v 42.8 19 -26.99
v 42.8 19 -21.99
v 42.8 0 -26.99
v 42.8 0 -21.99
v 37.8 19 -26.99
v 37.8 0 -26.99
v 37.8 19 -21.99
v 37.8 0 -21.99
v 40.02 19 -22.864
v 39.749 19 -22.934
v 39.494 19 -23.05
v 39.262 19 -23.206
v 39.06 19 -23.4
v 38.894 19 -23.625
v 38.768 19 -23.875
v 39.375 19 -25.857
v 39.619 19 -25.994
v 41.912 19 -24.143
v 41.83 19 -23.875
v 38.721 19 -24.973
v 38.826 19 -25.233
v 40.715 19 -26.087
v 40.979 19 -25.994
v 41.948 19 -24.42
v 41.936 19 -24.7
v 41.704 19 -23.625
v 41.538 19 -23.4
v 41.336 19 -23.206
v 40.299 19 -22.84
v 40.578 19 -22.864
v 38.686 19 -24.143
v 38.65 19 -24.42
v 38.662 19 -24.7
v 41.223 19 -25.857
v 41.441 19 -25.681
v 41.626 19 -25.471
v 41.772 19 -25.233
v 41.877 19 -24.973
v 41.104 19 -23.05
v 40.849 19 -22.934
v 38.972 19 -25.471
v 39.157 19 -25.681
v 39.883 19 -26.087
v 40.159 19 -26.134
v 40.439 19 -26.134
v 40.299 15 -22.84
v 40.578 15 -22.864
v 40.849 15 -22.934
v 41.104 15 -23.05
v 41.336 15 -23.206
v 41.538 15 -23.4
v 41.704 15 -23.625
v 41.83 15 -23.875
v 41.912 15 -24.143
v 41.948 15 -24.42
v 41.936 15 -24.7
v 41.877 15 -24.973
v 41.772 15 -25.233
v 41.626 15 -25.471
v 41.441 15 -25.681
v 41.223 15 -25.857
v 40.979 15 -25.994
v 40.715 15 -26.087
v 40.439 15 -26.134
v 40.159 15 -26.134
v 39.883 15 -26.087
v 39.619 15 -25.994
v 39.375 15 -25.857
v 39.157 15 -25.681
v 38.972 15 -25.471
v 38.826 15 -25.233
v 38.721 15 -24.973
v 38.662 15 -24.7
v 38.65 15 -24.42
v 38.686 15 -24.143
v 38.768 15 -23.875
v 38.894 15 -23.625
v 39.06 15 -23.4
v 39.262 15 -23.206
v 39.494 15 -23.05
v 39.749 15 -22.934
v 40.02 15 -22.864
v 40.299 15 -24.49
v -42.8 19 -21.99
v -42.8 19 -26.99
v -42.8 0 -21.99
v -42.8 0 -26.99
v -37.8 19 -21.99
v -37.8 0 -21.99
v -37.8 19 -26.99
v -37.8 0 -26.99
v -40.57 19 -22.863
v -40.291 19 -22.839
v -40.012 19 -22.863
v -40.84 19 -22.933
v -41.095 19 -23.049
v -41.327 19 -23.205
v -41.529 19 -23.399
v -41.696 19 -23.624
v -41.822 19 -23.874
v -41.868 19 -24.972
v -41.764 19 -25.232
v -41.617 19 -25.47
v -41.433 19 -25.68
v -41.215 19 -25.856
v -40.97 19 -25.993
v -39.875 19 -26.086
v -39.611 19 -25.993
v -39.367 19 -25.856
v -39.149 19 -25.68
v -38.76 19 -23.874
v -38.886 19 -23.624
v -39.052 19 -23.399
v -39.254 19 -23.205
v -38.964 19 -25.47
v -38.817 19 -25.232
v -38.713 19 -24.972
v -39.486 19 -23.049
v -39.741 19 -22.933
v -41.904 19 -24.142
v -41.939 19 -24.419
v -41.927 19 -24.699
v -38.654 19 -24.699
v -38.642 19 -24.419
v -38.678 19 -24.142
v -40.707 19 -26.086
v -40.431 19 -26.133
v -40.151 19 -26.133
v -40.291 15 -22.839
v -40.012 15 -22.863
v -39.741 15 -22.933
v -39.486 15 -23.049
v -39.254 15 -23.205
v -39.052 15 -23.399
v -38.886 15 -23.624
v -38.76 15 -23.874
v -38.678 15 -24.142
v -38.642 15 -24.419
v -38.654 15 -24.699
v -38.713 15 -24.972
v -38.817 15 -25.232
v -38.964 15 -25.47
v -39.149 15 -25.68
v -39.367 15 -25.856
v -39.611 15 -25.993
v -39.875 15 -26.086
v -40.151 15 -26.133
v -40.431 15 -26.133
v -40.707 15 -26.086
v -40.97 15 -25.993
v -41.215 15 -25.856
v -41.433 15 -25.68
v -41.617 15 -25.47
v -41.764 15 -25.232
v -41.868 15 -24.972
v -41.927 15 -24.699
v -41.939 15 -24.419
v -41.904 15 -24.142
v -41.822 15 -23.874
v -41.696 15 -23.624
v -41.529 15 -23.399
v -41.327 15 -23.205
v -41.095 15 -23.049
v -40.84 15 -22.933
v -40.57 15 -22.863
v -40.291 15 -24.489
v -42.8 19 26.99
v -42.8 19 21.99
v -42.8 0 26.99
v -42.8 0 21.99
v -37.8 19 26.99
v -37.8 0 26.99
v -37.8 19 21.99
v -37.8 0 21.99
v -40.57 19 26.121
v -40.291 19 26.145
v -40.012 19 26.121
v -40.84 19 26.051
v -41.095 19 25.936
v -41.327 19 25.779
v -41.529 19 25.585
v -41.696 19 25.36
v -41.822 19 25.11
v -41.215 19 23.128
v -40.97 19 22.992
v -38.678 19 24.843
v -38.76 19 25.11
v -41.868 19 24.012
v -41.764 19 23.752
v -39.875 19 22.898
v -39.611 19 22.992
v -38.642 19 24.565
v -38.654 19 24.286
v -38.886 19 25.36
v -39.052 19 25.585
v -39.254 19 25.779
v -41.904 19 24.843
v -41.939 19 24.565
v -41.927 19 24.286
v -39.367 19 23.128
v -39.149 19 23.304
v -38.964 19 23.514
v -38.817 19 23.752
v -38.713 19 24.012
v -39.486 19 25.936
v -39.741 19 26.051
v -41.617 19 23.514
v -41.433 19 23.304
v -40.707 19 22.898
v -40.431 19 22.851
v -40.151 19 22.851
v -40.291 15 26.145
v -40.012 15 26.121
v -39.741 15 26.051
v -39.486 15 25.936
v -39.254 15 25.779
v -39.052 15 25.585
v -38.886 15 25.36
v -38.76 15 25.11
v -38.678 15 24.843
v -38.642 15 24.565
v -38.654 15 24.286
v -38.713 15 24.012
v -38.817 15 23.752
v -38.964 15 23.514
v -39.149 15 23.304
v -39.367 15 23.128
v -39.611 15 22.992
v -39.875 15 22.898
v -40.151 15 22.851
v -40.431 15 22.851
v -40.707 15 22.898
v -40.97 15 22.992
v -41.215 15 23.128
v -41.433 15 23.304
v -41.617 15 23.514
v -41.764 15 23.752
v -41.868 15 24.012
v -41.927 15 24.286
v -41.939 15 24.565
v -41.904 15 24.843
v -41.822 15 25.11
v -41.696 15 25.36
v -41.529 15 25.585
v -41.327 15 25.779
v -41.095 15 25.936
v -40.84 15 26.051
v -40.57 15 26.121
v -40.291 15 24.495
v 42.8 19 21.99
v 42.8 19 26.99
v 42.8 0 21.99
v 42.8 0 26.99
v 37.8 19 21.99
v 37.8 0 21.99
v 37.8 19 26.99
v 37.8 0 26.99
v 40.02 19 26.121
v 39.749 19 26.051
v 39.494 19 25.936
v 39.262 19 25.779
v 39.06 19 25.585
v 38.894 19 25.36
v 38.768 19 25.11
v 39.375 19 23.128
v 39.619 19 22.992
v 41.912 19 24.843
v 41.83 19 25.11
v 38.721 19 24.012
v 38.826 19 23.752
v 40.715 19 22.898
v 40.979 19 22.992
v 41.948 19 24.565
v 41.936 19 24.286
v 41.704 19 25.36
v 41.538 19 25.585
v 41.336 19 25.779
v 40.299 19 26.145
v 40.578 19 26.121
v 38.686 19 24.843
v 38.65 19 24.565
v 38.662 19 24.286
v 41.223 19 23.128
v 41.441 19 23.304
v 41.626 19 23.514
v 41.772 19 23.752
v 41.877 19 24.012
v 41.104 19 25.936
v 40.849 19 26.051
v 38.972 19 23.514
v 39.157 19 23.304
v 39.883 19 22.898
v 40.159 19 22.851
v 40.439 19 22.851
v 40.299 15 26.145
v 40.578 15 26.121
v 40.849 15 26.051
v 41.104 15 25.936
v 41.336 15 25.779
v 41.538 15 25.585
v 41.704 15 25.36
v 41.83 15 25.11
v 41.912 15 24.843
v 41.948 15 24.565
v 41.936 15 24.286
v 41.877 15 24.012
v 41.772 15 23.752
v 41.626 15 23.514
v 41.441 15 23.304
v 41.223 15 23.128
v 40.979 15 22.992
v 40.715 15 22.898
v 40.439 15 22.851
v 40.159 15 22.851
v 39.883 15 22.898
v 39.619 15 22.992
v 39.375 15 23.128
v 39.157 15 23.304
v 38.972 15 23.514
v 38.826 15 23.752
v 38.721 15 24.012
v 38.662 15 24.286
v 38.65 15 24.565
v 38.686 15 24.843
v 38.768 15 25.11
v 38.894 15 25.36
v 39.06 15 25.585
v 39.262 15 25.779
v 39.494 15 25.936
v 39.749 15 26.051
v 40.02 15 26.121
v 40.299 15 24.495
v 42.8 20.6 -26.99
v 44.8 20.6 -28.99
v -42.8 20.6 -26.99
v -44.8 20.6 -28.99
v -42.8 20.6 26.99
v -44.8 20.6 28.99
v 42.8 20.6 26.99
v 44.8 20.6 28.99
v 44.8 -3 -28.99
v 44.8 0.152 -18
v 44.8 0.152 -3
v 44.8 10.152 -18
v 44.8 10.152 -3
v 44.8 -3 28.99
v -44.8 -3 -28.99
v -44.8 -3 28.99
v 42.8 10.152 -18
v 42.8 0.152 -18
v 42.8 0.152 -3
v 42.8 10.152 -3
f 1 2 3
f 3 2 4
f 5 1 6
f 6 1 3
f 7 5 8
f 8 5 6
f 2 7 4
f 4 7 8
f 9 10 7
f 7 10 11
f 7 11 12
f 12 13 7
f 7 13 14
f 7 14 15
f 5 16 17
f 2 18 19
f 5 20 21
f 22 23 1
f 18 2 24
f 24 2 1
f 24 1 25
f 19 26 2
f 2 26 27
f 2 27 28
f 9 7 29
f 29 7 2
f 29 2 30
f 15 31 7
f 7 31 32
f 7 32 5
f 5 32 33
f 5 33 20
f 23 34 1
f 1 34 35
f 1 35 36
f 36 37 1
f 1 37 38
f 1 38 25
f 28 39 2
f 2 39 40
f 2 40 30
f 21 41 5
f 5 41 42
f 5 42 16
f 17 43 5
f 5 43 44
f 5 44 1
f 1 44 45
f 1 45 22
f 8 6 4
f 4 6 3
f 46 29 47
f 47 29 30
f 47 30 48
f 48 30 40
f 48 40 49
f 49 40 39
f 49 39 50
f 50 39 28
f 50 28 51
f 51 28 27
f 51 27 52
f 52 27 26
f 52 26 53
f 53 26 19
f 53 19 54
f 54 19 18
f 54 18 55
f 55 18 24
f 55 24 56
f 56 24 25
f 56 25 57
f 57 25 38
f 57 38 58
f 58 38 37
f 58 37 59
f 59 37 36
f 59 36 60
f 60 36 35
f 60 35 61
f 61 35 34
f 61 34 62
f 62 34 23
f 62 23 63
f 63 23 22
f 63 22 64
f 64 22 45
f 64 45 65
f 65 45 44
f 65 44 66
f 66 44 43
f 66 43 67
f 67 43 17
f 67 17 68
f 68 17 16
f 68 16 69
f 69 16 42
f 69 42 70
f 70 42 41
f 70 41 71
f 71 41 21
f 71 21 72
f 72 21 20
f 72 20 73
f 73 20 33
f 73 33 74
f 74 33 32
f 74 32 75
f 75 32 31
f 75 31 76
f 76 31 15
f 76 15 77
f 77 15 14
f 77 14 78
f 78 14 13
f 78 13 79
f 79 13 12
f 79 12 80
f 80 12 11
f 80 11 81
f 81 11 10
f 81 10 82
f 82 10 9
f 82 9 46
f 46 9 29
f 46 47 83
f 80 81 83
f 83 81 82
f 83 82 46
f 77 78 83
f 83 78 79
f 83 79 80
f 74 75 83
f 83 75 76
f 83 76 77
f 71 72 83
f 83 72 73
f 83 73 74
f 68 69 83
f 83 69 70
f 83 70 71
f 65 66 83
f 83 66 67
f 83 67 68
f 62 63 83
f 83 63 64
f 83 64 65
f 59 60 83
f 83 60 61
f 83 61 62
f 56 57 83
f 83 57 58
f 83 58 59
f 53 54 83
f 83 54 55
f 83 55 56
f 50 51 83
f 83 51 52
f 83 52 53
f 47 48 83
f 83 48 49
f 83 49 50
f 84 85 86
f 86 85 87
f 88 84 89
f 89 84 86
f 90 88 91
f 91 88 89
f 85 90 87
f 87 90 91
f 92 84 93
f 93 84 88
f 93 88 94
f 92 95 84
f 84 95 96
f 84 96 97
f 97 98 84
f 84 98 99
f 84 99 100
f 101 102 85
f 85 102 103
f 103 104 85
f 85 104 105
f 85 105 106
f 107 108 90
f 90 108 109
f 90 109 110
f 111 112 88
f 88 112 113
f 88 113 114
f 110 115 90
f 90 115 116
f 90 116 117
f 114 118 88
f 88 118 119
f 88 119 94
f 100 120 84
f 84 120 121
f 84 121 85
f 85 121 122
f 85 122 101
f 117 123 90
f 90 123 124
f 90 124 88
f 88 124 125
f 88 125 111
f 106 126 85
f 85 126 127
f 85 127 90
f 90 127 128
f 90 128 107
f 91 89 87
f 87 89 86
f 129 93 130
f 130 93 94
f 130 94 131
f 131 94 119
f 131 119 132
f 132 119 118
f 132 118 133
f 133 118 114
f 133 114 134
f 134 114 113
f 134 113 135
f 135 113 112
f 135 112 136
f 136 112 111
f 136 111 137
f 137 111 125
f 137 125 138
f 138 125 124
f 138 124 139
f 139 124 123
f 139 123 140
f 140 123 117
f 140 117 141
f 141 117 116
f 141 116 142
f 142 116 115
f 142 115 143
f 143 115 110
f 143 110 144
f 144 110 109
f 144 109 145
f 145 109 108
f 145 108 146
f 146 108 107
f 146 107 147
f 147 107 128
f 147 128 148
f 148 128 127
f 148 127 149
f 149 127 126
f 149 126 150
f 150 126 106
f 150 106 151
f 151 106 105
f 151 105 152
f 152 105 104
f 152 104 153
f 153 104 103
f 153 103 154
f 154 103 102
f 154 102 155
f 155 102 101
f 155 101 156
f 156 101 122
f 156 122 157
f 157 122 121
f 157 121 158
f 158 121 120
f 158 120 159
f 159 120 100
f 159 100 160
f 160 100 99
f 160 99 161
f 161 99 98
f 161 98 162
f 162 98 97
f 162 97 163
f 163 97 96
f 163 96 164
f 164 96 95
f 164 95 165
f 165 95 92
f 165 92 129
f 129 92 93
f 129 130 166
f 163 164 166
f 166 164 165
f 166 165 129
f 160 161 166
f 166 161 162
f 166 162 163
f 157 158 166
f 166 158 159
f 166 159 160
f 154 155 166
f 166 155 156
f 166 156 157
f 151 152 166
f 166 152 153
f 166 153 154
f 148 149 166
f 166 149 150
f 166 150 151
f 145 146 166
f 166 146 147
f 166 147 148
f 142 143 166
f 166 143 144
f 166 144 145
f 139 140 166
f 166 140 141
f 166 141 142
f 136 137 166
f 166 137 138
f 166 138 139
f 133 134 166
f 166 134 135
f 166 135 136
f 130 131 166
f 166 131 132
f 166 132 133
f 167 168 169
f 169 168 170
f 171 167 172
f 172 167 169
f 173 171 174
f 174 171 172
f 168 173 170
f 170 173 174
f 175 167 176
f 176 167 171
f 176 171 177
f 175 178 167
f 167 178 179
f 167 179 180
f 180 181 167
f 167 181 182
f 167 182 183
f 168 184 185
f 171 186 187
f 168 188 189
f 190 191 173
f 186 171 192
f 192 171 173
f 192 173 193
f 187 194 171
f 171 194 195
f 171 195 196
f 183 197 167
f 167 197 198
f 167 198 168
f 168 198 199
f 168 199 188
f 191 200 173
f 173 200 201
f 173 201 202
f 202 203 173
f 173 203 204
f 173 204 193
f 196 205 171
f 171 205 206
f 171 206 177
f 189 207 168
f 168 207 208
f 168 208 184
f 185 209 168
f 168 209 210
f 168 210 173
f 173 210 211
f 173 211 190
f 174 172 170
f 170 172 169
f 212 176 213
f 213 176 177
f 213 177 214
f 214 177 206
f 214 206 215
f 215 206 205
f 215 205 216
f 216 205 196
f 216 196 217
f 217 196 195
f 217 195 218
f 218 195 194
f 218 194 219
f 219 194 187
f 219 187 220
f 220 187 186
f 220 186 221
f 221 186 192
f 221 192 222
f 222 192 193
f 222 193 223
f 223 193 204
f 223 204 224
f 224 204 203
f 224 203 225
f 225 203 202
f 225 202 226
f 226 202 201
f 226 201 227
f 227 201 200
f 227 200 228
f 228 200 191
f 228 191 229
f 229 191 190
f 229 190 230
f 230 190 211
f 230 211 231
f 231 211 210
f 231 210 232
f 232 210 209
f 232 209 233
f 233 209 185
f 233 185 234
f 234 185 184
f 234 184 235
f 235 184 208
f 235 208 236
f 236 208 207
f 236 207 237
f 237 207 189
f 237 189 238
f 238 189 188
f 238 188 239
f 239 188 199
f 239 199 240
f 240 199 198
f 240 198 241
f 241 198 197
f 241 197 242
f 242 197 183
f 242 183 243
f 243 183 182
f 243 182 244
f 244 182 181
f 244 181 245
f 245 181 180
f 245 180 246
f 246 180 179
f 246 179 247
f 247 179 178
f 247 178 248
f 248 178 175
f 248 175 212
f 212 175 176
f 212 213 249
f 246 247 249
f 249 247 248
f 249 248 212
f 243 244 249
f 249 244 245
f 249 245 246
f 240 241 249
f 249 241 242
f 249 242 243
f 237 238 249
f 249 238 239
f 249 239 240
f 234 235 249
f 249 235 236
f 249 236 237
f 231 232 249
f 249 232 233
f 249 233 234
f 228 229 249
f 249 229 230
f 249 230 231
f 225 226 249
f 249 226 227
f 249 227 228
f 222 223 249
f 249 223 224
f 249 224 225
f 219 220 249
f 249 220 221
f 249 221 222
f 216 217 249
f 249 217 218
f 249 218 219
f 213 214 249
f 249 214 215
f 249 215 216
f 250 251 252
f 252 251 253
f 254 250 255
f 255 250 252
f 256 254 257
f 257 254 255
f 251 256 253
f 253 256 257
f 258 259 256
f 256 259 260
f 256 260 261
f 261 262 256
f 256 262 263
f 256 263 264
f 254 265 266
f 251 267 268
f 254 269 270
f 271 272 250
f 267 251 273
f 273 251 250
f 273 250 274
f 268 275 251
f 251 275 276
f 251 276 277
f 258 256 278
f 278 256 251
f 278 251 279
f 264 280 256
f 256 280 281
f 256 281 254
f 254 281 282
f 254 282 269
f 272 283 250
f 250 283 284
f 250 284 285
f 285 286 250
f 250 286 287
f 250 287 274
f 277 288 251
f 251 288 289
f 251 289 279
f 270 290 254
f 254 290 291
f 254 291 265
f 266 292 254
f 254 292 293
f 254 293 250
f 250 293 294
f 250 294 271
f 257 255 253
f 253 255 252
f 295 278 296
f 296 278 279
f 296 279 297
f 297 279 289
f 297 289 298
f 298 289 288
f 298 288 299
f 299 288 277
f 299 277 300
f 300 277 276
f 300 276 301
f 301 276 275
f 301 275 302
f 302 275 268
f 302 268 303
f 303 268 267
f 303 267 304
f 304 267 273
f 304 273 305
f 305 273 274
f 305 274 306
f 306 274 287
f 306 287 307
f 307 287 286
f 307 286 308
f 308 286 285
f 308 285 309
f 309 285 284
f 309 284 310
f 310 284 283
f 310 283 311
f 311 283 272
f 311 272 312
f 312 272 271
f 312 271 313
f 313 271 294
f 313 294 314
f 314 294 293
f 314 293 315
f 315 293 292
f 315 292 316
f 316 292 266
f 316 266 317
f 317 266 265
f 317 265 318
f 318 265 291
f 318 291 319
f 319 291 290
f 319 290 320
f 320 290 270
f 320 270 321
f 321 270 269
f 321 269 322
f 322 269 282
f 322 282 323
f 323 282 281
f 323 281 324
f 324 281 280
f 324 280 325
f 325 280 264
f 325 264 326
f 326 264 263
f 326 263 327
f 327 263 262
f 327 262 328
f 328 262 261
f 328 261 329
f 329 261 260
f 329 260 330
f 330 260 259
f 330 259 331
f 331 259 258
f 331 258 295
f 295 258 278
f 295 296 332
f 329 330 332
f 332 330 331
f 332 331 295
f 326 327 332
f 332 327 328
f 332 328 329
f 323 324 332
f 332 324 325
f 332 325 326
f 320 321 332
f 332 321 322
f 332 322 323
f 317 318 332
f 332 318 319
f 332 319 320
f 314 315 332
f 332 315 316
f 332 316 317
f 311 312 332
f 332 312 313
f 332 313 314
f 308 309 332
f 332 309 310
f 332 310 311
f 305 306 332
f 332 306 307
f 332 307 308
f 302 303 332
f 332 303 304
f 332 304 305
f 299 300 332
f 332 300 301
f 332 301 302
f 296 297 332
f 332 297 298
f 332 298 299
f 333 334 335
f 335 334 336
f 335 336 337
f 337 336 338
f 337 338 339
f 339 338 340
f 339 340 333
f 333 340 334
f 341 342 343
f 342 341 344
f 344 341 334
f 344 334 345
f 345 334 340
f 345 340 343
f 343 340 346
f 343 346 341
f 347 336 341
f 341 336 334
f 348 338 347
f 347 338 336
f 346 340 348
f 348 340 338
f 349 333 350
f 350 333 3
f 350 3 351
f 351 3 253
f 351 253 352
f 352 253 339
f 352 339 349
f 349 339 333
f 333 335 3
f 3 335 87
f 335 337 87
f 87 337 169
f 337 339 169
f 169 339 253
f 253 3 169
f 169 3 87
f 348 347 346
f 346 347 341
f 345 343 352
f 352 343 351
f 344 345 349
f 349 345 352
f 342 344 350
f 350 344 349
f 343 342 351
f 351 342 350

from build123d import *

# Parameters (mm, degrees)
SKETCH1_W             = 89.6
SKETCH1_H             = 57.98
SKETCH1_W_2           = 85.6
SKETCH1_H_2           = 53.98
BOSS_EXTRUDE1_DEPTH   = 20.6
SKETCH2_W             = 89.6
SKETCH2_H             = 57.98
BOSS_EXTRUDE2_DEPTH   = 3
SKETCH3_W             = 5
SKETCH3_H             = 5
BOSS_EXTRUDE3_DEPTH   = 19
BOSS_EXTRUDE3_2_DEPTH = 19
BOSS_EXTRUDE3_3_DEPTH = 19
BOSS_EXTRUDE3_4_DEPTH = 19
SKETCH4_R             = 1.65
CUT_EXTRUDE2_DEPTH    = 4
SKETCH5_W             = 15
SKETCH5_H             = 10
CUT_EXTRUDE3_DEPTH    = 4


with BuildPart() as part:
    # Sketch1 → Boss-Extrude1 (new body)
    with BuildSketch(Plane(origin=(0, 0, 0), x_dir=(1, 0, 0), z_dir=(0, 1, 0))):
        Rectangle(SKETCH1_W, SKETCH1_H)
        Rectangle(SKETCH1_W_2, SKETCH1_H_2, mode=Mode.SUBTRACT)
    extrude(amount=BOSS_EXTRUDE1_DEPTH)

    # Sketch2 → Boss-Extrude2 (add)
    with BuildSketch(Plane.XZ):
        Rectangle(SKETCH2_W, SKETCH2_H)
    extrude(amount=BOSS_EXTRUDE2_DEPTH)

    # Sketch5 → Cut-Extrude3 (cut)
    with BuildSketch(Plane(origin=(44.8, 0, 0), x_dir=(0, 0, -1), z_dir=(1, 0, 0))):
        with Locations((10.49990384, 5.151883102)):
            Rectangle(SKETCH5_W, SKETCH5_H)
    extrude(amount=-CUT_EXTRUDE3_DEPTH, mode=Mode.SUBTRACT)


with BuildPart() as body_2:
    # Sketch3 → Boss-Extrude3 (new body)
    with BuildSketch(Plane(origin=(0, 0, 0), x_dir=(1, 0, 0), z_dir=(0, 1, 0))):
        with Locations((40.3, 24.49)):
            Rectangle(SKETCH3_W, SKETCH3_H)
    extrude(amount=BOSS_EXTRUDE3_DEPTH)


with BuildPart() as body_3:
    # Sketch3 → Boss-Extrude3 2 (new body)
    with BuildSketch(Plane(origin=(0, 0, 0), x_dir=(1, 0, 0), z_dir=(0, 1, 0))):
        with Locations((-40.3, 24.49)):
            Rectangle(SKETCH3_W, SKETCH3_H)
    extrude(amount=BOSS_EXTRUDE3_2_DEPTH)


with BuildPart() as body_4:
    # Sketch3 → Boss-Extrude3 3 (new body)
    with BuildSketch(Plane(origin=(0, 0, 0), x_dir=(1, 0, 0), z_dir=(0, 1, 0))):
        with Locations((-40.3, -24.49)):
            Rectangle(SKETCH3_W, SKETCH3_H)
    extrude(amount=BOSS_EXTRUDE3_3_DEPTH)


with BuildPart() as body_5:
    # Sketch3 → Boss-Extrude3 4 (new body)
    with BuildSketch(Plane(origin=(0, 0, 0), x_dir=(1, 0, 0), z_dir=(0, 1, 0))):
        with Locations((40.3, -24.49)):
            Rectangle(SKETCH3_W, SKETCH3_H)
    extrude(amount=BOSS_EXTRUDE3_4_DEPTH)


with BuildPart() as cut_extrude2_tool:
    # Sketch4 → Cut-Extrude2 (new body)
    with BuildSketch(Plane(origin=(0, 19, 0), x_dir=(1, 0, 0), z_dir=(0, 1, 0))):
        with Locations(Location((-40.2908036, 24.48916763, 0), (0, 0, 270))):
            Circle(SKETCH4_R)
        with Locations(Location((40.29900386, 24.49016763, 0), (0, 0, 270))):
            Circle(SKETCH4_R)
        with Locations(Location((40.29900386, -24.49509047, 0), (0, 0, 270))):
            Circle(SKETCH4_R)
        with Locations(Location((-40.2908036, -24.49509047, 0), (0, 0, 270))):
            Circle(SKETCH4_R)
    extrude(amount=-CUT_EXTRUDE2_DEPTH)


with BuildPart() as body_2_1:
    add(body_2.part)

    # Cut-Extrude2: cut by cut_extrude2_tool
    add(cut_extrude2_tool.part, mode=Mode.SUBTRACT)


with BuildPart() as body_3_1:
    add(body_3.part)

    # Cut-Extrude2: cut by cut_extrude2_tool
    add(cut_extrude2_tool.part, mode=Mode.SUBTRACT)


with BuildPart() as body_4_1:
    add(body_4.part)

    # Cut-Extrude2: cut by cut_extrude2_tool
    add(cut_extrude2_tool.part, mode=Mode.SUBTRACT)


with BuildPart() as body_5_1:
    add(body_5.part)

    # Cut-Extrude2: cut by cut_extrude2_tool
    add(cut_extrude2_tool.part, mode=Mode.SUBTRACT)


solid = Compound([part.part, body_2_1.part, body_3_1.part, body_4_1.part, body_5_1.part])
